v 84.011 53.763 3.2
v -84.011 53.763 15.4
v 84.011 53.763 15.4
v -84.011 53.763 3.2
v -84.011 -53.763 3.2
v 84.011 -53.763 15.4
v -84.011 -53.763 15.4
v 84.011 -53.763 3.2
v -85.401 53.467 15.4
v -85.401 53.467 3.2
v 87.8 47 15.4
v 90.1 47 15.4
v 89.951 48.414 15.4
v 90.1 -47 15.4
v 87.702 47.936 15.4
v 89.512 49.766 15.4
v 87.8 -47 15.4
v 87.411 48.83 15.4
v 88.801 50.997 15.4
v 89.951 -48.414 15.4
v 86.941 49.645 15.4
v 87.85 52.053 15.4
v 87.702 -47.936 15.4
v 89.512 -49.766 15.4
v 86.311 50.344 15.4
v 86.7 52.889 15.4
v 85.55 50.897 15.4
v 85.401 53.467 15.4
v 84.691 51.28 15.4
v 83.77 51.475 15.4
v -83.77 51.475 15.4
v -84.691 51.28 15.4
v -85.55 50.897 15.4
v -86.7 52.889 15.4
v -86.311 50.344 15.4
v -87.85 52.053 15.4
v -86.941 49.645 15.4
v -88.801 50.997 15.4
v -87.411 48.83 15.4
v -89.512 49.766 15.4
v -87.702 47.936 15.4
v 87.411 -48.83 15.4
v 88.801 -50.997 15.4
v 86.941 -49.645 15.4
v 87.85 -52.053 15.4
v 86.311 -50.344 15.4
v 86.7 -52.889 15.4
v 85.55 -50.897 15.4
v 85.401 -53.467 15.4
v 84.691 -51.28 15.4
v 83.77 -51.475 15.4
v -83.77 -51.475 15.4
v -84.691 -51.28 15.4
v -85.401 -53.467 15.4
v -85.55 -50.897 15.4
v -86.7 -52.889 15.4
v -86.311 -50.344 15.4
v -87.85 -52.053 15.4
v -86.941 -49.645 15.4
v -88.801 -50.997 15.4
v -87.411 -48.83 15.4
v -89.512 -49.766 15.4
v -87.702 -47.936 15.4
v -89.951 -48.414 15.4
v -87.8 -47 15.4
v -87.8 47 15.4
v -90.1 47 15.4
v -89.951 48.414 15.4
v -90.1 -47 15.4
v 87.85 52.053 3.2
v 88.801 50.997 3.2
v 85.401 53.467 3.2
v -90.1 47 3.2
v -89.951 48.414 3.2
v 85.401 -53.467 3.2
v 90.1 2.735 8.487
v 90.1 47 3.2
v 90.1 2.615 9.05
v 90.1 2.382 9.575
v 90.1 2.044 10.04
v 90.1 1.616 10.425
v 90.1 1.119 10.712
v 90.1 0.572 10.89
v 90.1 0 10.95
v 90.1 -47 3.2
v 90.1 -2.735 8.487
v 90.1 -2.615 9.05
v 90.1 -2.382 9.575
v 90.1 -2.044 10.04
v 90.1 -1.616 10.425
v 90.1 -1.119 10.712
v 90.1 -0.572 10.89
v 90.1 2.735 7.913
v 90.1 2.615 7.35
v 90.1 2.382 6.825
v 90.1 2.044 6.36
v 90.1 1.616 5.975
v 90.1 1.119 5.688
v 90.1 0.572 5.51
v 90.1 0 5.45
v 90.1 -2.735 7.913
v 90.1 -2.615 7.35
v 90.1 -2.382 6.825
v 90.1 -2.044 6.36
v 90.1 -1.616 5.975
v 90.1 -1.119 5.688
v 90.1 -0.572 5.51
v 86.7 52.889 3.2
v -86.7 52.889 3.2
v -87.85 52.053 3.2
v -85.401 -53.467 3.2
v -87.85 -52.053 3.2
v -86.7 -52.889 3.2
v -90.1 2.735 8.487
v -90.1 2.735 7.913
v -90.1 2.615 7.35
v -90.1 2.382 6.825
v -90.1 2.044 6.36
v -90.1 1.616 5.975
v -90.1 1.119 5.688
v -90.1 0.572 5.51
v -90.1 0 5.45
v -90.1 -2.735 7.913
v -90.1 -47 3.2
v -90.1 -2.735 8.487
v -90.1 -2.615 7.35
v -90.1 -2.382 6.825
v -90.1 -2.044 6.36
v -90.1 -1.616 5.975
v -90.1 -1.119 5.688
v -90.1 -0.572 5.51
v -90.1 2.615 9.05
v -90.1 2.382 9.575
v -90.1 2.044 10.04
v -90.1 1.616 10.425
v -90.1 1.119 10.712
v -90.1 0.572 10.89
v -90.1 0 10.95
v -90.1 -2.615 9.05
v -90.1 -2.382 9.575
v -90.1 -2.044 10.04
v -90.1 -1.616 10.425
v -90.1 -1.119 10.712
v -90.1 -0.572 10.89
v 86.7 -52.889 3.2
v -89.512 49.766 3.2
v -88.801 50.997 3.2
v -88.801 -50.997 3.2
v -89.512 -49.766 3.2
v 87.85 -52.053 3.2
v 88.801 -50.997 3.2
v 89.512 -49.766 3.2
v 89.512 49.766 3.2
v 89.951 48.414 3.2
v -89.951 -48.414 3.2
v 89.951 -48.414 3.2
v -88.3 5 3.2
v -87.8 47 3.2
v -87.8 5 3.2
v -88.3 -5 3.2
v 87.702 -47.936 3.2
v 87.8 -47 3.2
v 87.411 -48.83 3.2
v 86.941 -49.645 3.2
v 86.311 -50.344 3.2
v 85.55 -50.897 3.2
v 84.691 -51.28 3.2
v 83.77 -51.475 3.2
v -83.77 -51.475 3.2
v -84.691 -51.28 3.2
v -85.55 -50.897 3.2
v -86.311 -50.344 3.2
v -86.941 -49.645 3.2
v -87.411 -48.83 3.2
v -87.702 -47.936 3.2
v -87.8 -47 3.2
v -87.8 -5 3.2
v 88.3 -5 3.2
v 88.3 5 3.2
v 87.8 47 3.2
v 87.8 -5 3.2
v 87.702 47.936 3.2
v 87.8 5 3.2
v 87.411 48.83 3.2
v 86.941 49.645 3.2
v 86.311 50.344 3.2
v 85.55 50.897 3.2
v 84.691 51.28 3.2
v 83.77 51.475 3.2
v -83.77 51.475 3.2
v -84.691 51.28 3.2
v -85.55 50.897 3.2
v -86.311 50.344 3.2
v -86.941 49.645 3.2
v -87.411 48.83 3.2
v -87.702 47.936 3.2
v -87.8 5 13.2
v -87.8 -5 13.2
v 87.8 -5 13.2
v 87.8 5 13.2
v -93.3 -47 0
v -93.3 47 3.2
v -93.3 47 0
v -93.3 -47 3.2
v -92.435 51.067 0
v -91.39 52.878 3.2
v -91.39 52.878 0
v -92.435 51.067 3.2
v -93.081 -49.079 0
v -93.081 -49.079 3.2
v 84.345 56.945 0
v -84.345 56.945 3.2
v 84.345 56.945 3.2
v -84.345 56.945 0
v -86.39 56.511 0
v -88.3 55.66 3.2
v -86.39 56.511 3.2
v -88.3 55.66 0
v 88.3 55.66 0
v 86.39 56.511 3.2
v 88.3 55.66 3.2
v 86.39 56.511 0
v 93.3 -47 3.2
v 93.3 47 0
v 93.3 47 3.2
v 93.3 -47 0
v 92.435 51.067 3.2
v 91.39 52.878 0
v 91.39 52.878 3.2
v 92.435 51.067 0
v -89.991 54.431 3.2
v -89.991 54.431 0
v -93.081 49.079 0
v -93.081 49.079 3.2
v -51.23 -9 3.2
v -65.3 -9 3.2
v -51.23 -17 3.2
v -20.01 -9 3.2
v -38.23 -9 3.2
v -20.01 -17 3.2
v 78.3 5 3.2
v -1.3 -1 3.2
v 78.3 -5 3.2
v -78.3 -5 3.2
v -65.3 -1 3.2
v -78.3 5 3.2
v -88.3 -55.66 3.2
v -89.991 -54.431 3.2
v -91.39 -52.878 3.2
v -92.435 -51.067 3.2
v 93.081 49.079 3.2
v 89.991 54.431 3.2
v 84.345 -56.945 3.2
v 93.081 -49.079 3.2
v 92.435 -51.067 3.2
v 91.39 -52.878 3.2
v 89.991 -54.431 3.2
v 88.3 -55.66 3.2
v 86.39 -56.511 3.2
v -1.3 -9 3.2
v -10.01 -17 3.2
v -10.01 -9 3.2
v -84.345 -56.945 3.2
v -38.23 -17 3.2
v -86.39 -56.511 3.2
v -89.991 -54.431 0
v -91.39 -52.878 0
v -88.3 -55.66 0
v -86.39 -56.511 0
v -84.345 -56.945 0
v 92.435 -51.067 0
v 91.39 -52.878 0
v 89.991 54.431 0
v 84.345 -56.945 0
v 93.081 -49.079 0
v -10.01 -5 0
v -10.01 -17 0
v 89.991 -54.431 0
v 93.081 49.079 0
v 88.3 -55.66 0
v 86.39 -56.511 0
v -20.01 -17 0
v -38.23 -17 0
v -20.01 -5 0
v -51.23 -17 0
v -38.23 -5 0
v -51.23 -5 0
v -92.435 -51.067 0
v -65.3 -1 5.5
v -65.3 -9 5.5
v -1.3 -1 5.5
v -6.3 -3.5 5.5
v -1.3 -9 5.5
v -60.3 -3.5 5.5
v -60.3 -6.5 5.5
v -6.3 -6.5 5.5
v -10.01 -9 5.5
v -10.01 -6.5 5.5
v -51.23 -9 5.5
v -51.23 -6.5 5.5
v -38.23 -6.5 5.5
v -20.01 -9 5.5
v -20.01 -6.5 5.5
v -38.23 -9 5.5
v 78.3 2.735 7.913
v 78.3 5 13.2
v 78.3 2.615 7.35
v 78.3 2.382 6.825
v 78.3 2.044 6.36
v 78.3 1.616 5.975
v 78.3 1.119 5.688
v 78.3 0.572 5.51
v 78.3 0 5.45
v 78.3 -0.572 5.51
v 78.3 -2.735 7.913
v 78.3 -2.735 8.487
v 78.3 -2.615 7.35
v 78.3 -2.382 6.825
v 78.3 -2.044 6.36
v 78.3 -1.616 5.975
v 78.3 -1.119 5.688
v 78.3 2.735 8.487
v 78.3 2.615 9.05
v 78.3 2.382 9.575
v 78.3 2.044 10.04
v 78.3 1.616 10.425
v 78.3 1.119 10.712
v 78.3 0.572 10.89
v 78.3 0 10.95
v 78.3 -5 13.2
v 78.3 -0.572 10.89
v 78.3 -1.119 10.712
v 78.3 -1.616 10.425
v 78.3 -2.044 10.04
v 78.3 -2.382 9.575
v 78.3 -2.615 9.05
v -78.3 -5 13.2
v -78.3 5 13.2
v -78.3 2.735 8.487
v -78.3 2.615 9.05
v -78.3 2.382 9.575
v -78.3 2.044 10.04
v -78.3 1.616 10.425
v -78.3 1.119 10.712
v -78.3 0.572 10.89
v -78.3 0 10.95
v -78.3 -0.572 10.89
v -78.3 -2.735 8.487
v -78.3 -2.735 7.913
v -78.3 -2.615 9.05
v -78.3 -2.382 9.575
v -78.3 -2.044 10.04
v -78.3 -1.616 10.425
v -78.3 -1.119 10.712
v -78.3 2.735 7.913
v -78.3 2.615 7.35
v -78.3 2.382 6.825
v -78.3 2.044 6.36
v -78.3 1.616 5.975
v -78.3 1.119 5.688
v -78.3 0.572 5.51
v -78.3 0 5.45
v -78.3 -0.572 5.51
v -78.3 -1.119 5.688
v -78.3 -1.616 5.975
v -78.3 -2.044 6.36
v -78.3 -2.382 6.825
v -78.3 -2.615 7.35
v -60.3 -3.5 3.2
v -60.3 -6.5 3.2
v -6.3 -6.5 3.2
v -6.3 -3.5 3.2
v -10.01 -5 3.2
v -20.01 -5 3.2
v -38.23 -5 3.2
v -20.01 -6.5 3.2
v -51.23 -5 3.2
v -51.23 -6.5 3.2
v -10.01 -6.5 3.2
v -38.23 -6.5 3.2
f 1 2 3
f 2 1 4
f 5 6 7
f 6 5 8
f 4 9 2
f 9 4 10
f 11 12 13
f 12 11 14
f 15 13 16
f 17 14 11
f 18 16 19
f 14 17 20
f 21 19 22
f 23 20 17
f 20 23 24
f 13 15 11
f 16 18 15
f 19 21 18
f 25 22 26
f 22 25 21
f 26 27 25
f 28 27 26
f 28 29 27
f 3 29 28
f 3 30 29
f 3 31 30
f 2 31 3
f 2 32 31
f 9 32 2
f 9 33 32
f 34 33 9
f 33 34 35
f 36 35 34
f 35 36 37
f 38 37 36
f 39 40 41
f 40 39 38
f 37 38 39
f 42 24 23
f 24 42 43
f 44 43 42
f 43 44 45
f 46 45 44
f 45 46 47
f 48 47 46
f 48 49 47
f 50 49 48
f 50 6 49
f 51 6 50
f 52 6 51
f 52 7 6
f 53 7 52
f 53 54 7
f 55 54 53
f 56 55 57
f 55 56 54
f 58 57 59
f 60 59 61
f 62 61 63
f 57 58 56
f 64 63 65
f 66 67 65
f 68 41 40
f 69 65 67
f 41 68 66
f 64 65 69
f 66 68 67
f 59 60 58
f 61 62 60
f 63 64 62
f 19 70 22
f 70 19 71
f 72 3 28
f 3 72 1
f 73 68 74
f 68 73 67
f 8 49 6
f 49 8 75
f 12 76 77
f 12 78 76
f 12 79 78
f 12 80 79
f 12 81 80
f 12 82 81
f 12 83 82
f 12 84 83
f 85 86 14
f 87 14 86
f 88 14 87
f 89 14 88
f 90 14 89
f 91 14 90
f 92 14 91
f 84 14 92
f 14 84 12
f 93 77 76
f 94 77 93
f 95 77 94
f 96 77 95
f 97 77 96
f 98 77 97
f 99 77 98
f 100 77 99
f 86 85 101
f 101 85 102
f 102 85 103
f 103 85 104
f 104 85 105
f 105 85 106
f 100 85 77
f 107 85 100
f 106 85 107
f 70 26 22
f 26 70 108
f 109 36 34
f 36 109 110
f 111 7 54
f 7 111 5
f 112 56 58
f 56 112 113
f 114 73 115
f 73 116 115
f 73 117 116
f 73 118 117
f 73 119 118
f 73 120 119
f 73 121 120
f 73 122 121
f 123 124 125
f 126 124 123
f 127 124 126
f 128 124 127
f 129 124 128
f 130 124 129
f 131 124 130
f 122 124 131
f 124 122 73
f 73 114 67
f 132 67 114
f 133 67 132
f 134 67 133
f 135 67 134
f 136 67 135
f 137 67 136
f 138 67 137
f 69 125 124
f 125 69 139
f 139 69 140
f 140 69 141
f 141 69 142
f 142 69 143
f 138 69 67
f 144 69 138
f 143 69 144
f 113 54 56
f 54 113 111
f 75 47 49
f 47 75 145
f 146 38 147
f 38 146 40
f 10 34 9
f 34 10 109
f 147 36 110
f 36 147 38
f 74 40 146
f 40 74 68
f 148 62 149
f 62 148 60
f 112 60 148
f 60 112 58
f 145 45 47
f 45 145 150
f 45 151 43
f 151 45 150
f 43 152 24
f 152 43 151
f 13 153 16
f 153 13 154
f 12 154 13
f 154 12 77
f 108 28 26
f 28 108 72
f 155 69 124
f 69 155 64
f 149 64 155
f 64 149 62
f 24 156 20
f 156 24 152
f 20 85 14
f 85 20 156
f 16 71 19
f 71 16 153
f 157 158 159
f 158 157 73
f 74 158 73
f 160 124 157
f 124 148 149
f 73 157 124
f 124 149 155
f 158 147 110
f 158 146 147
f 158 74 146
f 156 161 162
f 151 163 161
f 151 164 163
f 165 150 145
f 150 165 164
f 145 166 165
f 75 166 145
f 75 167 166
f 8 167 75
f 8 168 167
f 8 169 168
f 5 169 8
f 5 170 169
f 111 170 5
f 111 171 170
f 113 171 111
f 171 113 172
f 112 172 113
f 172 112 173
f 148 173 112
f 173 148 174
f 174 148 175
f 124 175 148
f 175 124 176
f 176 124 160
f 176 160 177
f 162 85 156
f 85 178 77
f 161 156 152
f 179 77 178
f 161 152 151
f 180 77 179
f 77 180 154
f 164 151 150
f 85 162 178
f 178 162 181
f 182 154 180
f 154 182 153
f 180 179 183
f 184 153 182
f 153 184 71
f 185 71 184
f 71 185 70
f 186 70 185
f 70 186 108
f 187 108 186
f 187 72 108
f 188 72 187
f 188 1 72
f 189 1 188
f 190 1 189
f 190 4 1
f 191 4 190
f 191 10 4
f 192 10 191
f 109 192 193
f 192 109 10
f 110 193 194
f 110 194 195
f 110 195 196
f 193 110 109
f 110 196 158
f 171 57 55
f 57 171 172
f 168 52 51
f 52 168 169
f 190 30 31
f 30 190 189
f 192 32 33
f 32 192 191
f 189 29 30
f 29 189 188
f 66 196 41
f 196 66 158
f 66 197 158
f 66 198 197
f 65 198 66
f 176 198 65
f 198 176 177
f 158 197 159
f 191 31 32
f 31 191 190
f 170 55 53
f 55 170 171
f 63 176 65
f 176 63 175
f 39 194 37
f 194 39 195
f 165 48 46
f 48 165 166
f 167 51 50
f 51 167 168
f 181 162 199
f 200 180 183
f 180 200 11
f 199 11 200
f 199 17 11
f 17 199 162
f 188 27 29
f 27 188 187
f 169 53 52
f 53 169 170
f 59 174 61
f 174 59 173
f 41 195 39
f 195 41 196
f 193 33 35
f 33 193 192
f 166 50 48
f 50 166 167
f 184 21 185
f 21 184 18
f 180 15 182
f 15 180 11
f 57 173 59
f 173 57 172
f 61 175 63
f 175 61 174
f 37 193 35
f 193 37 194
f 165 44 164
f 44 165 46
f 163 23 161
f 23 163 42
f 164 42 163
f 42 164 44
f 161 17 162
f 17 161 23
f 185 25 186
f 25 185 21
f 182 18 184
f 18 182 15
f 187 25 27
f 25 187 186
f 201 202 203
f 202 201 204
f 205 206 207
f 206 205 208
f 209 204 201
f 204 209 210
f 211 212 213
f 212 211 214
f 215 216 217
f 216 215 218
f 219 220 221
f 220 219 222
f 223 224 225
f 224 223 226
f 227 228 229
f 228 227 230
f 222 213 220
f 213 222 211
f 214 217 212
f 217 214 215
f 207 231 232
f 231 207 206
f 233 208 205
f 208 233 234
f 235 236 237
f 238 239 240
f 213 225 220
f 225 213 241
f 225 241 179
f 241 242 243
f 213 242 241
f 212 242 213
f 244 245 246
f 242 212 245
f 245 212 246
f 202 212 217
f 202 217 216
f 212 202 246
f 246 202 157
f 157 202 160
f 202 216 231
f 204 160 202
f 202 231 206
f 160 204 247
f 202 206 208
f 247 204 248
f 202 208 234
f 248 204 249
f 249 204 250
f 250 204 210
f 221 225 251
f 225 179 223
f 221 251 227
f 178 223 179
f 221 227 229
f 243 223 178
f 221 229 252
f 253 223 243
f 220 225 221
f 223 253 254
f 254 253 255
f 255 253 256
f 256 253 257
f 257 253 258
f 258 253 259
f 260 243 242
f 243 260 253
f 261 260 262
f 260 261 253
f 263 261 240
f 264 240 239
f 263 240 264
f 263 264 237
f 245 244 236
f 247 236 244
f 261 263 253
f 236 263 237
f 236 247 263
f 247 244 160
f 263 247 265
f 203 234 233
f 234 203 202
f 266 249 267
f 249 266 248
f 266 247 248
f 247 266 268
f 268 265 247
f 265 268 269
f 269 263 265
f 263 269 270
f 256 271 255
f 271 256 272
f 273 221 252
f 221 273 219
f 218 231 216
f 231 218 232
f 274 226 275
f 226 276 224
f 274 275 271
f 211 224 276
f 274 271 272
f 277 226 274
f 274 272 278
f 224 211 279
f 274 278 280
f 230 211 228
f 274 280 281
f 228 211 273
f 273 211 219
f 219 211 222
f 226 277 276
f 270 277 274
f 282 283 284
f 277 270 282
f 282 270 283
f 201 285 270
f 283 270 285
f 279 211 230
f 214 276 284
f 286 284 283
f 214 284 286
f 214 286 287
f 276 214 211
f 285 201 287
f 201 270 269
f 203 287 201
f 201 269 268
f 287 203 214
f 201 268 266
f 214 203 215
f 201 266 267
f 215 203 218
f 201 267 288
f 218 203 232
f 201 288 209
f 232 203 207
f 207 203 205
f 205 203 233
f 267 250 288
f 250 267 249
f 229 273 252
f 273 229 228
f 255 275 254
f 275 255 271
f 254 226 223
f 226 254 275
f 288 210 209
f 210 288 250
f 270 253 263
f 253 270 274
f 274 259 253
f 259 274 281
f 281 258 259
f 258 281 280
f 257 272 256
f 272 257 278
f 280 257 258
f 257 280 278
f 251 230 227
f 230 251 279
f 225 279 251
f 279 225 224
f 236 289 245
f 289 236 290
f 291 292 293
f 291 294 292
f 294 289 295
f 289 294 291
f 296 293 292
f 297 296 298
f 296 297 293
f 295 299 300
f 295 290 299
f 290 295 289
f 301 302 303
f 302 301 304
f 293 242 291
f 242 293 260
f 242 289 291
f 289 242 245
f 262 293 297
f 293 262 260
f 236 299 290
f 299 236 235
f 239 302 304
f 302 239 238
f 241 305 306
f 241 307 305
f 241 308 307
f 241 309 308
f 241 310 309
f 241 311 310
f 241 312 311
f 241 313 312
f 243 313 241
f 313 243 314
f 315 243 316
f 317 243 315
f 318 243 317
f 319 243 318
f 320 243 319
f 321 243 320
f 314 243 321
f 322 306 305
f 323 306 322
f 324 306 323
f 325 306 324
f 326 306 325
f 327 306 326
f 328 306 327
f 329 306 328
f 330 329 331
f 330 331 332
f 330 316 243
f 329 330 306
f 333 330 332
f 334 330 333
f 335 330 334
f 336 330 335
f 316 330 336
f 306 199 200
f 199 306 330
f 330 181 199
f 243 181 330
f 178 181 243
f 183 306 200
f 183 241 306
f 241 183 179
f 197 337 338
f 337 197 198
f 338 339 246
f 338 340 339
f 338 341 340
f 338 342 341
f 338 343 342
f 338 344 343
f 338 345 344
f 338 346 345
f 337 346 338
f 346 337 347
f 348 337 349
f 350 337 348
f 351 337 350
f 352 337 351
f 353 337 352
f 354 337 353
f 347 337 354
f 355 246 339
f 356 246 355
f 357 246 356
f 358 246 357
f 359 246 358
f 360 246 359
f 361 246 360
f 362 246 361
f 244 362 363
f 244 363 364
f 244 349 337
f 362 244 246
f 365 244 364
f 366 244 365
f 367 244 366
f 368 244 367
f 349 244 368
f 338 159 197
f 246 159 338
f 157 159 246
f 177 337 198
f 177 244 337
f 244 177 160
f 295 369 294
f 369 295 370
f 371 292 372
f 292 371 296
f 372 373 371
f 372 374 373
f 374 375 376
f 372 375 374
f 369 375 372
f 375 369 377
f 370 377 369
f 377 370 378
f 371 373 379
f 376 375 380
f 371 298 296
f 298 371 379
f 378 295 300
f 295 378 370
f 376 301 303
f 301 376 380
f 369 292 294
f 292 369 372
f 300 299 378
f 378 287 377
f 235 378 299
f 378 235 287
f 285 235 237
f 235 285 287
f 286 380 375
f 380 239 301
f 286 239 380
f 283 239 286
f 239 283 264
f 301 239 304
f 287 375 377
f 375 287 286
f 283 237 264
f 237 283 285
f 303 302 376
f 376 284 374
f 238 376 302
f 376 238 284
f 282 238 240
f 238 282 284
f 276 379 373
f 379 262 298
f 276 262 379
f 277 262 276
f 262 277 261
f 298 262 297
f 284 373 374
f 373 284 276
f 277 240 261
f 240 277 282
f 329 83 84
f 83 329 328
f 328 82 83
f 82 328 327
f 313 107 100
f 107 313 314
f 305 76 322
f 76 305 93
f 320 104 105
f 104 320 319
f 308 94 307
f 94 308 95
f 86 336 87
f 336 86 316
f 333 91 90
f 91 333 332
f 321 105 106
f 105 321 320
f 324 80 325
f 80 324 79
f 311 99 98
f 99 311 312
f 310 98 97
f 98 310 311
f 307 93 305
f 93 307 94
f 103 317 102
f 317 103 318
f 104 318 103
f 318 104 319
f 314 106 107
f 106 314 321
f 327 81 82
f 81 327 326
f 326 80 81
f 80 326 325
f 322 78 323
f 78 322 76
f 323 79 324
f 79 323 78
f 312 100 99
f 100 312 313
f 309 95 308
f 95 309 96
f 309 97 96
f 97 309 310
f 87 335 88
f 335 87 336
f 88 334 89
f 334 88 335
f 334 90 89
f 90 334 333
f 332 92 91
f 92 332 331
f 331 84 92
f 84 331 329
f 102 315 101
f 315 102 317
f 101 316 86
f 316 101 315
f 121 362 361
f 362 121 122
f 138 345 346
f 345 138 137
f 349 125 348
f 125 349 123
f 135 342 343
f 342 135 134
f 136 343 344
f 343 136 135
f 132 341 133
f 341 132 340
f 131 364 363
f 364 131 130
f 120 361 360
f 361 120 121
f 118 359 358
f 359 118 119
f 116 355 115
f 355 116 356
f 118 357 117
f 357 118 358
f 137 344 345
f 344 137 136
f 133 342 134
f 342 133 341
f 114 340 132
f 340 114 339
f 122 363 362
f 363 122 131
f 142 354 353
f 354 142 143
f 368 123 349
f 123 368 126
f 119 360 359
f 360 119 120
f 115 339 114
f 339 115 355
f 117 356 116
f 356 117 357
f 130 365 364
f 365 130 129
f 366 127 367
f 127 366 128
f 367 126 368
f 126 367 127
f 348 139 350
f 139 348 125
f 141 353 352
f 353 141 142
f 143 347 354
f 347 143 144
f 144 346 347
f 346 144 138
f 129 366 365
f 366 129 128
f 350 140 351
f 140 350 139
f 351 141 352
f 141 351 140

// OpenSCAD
// file: DMM_Back_Block.scad
include <BoxCommon.scad>;
$fs=.01;
// This is going to look upside down because of
// coordinate system for the board is from the front.
// Whereas this view is from the back. Its all
// flipped on the x axis.


BlockSZ=[54+10,8,5.5]; //  Of the board holders

// Locate the connectors on the back of the board
BRD_Center_X=53.34/2; // from either edge.
PWR_Center_X=BRD_Center_X-8.38; // Offset from center
USB_Center_X=BRD_Center_X-38.1;  // to center

USB_SZ=[13,12,50];
PWR_SZ=[10,12,50];



// Use these modules with the same translate parameters
module DMM_Back_U() // Really, just the cpu.
{  

    
   translate([0,-BlockSZ.y/2,BlockSZ.z/2]) cube(BlockSZ,center=true);
   
}
module DMM_Back_D()
{
    translate([0,0,panelDim.z])
    {
                     // The board is centered on 0,0 and 0 above z
        translate([0,-4,20/2])
         {
             cube([CPU_BOARD_X, CPU_BOARD_Y,20],center=true);
             translate([USB_Center_X,-USB_SZ.y/2,0])
                cube(USB_SZ,center=true);
             translate([PWR_Center_X,-PWR_SZ.y/2,0])
                cube(PWR_SZ,center=true);         }
      }

    
}
difference()
{
     union(){
        cylinder(r=1,h=50);
        DMM_Back_U();
     }
    DMM_Back_D();
    translate([0,-50,0]) cube([50,50,30]);
}
// file: Bezel.scad
// Draw a window in a panel with an angled opening.
// The passed size is the back/inside opening.
// The front of the hole will be grown according to the
// trig calculation and the thickness.
// A suggested thickness is 3.5-4mm

// Place this in a difference() block with other holes in the 
// panel.
// Translate as needed.  Include a small -z to clean up the hole
// in the rendering.
module Bezel(size)
{
    
    bx=size.x;  // Size of the cutout
    by=size.y;
    bz=size.z; // Thk at bezel
    bang=60;  // Angle at the bezel
    be=bz/tan(bang);

    
    
    bp=[[-bx/2-be,-by/2-be,0],[-bx/2-be,by/2+be,0],
        [bx/2+be,by/2+be,0],[bx/2+be,-by/2-be,0],
        [-bx/2,-by/2,bz],[-bx/2,by/2,bz],
        [bx/2,by/2,bz],[bx/2,-by/2,bz]];
    
    bf=[[3,2,1,0],[4,5,6,7],[0,4,7,3],[5,1,2,6],[0,1,5,4],[3,7,6,2]];   
    
    
    polyhedron(bp,bf,3);

}

module BezelTest()
{
    // the opening should be slightly thicker and lower
    // than the surrounding panel for the display.
    panel=[100,50,4];
    opening=[80,40,4.01];
    
    difference()
    {
        translate([0,0, panel.z/2])
            cube(panel,center=true);
        translate([0,0,-.005])
            Bezel(opening);
    }
}

BezelTest();
// file: MK_Panel.scad
// Pull this file in with use<>

include <BoxCommon.scad>



// innerPanel => the size of the panel at the origin of
// the outer radii

// panel=> the x/y/z size of the panel extents
// lip => z of lip above the panel
// RO,RL,RI => the outer most, middle, and inner most radius

module dressPanel(panel,lipHt, RO,RL,RI)
{
    innerPanel=[panel.x-RO*2, panel.y-RO*2,panel.z-1];
    
    // Virtually center the panel on the origin
    translate([-innerPanel.x/2,-innerPanel.y/2,0])
    {
        minkowski()
        {
            cube(innerPanel,center=false);
            cylinder(r=RO,h=1);
        }

        translate([0,0,panel.z])
        {
            difference()
            {
                minkowski()
                {
                    cube(innerPanel,center=false);
                    cylinder(r=RL,h=lipHt);
                }
                minkowski()
                {
                    cube(innerPanel,center=false);
                    cylinder(r=RI,h=lipHt+1);
                }
            }
        }
    }
}

module outerShell(panel, RO,RL)
{
    ht2=panel.z/2;
    innerPanel=[panel.x-RO*2, panel.y-RO*2,ht2];
    
    // Virtually center the panel on the origin
    translate([-innerPanel.x/2,-innerPanel.y/2,0])
    {

        difference()
        {
            minkowski()
            {
                cube(innerPanel,center=false);
                cylinder(r=RO,h=ht2);
            }
            translate([0,0,-.5])
            minkowski()
            {
                cube(innerPanel,center=false);
                cylinder(r=RL,h=ht2+1);
            }
        }
    }
}

module testDressPanel()
{   
    R=15;
    
    difference()
    {
        dressPanel([60,40,4],6,R,R-3,R-6);
        cube([100,100,20]);
    }
}

module testOuterShell()
{

R=15;
    
    difference()
    {
        outerShell([60,40,20],R,R-2);
        cube([100,100,20]);
    }
}
//testDressPanel();
testOuterShell();
// file: BoxCommon.scad
// Sum array members:
function suma(array,start,end) =
    (start==end)
    ? array[start]
    : suma(array, start+1, end) + array[start];
function e(clear,o) =// Add clear to demensions of o
     (is_list(clear)) ?
        [o.x+clear.x,o.y+clear.y,o.z+clear.z] :
        [o.x+clear,o.y+clear,o.z+clear];

function align(mode,here,center=true)=
    [ search(mode,"eErR")?here.x:(search(mode,"wWlL")?0:here.x/2),
    search(mode,"nN")?here.y:(search(mode,"sS")?0:here.y/2),
    search(mode,"tT")?here.z:(search(mode,"bB")?0:here.z/2)]-
    (center?[here.x/2,here.y/2, here.z/2]:[0,0,0]);


module cubeXY(cc)
{
    translate([-cc.x/2,-cc.y/2, 0]) cube(cc,center=false);
}


// The size of the block that holds the display. Determines width.
DISPBLOCK=[16+50.2*3,44,15]; // Z is arbitrary at the moment

// The real size of the front panel
panelDim=[DISPBLOCK.x,DISPBLOCK.y,0]+[20,70,3.2];
lipHt=10;
outsideR=10;

// FF=Fudge Factor

DMM_BOARD_X=66 ; // 63 NO FF FROM DRAWING
DMM_BOARD_Y=3 ; // 1.6 NO FF Measured
//DMM_Center=[50,-20,0];
CPU_BOARD_X=54;
CPU_BOARD_Y=3;
CPU_BOARD_Z=102;


// Extra board locations relative to the DMM board:
CPU_Board_Loc=[0,27,6];  // Not using full width of the board
// loc is offset left to miss drilling the screw block.
IF_Board_Loc=[0,15,6];
boards=[[0,0,0],IF_Board_Loc,CPU_Board_Loc];


S_VO_OFFS=-19.08; // From drawing
S_Widths=14; // FROM Drawing
// Places 5A jack at edge of board.:
S_FUDGE=DMM_BOARD_X/2-S_Widths*2-2; 
S1=-S_Widths/2+S_FUDGE;
S0=S_VO_OFFS+S1;
S2=S_Widths/2+S_FUDGE; 
S3=S2+S_Widths;
DMM_JAX_X=[S0,S1,S2,S3];

// STack up to C/L of jack in Y - Measured terms
DMM_JAX_Y=DMM_BOARD_Y/2+4.9+5.5/2; 
DMM_JAX_LOWER_DIA=12; // Measured
DMM_JAX_UPPER_DIA=15; // Same as S_Widths
DMM_JAX_Z_OFFS=3.3 ; // How much of the lower shoulder shows.

for (i=[DMM_JAX_X])
    echo(i);
echo(DMM_JAX_Y);
// main file
// Assemble the front panel.



include <BoxCommon.scad>
use <MK_Panel.scad>
use <Bezel.scad>
use <DMM_Back_Block.scad>
//DMM_Center=[50,7,0];
$fs=.02;


// The dimensions of the front most rounded corner cube

innerPanelDim=[panelDim.x-2*outsideR,panelDim.y-2*outsideR,panelDim.z];

dmmSupportSize=[70,20,6+9];

DMM_Center=align("SE",innerPanelDim)+[-15-dmmSupportSize.x/2,dmmSupportSize.y*2+6,0];
DMM_B_Center=[-DMM_Center.x, DMM_Center.y, DMM_Center.z];
SPK_DIA=12.4;
SPK_HT=9;
SPK_Port_DIA=2.5;
SPK_HOLDER_DIA=SPK_DIA+4;

switchCenter=[-panelDim.x/4,4+-panelDim.y/4,0];
switchSz=[14,13,2];

//SPK_Center=align("W",panelDim,center=true)+ [SPK_HOLDER_DIA/2+25,3-SPK_HOLDER_DIA/2,0];
SPK_Center=[10-panelDim.x/2,switchCenter.y,0] + [SPK_HOLDER_DIA/2,0,0];
// The holder is slightly bigger
dispHolder=DISPBLOCK+[5,5,3];
dispCenter=[0,-8-DISPBLOCK.y/2+panelDim.y/2,panelDim.z];

// The bottom of the display
dispBottom=dispCenter+[0,-dispHolder.y/2,0];
*translate(dispBottom)
    cube([100,1,100],center=true);  // Show the location

// The hole in the front with the bezel
dispCut=[51*3,21,panelDim.z];



difference()
{
    union()
    {
    
        // This marks the center of the mega2560
        * translate(DMM_B_Center+[0,-4,0])color(c=[0,1,1,1]) cylinder(d=1,h=100,center=false);
        
        dressPanel(panelDim,lipHt, outsideR,outsideR-3.2,outsideR-5.5);
        color("cyan") translate(DMM_B_Center) DMM_Back_U();
        // Blocks for the screws
        translate([panelDim.x/2-10,0,panelDim.z+lipHt/2]) cube([10,10,lipHt],center=true);
        translate([-panelDim.x/2+10,0,panelDim.z+lipHt/2]) cube([10,10,lipHt],center=true);
    }
    // Turn the following statement on to see a cross section
    *translate([80,-15,-1])cube(100,100,10);
    
    
    // cut the slots for the boards.
    translate(DMM_B_Center)  DMM_Back_D();
    
    // Insert holes for the screws
    #translate([panelDim.x/2,0,panelDim.z+lipHt/2]) rotate([0,-90,0]) cylinder(h=15,d=5.5,center=false);
    #translate([-panelDim.x/2,0,panelDim.z+lipHt/2]) rotate([0,90,0]) cylinder(h=15,d=5.5,center=false);
    
   }
